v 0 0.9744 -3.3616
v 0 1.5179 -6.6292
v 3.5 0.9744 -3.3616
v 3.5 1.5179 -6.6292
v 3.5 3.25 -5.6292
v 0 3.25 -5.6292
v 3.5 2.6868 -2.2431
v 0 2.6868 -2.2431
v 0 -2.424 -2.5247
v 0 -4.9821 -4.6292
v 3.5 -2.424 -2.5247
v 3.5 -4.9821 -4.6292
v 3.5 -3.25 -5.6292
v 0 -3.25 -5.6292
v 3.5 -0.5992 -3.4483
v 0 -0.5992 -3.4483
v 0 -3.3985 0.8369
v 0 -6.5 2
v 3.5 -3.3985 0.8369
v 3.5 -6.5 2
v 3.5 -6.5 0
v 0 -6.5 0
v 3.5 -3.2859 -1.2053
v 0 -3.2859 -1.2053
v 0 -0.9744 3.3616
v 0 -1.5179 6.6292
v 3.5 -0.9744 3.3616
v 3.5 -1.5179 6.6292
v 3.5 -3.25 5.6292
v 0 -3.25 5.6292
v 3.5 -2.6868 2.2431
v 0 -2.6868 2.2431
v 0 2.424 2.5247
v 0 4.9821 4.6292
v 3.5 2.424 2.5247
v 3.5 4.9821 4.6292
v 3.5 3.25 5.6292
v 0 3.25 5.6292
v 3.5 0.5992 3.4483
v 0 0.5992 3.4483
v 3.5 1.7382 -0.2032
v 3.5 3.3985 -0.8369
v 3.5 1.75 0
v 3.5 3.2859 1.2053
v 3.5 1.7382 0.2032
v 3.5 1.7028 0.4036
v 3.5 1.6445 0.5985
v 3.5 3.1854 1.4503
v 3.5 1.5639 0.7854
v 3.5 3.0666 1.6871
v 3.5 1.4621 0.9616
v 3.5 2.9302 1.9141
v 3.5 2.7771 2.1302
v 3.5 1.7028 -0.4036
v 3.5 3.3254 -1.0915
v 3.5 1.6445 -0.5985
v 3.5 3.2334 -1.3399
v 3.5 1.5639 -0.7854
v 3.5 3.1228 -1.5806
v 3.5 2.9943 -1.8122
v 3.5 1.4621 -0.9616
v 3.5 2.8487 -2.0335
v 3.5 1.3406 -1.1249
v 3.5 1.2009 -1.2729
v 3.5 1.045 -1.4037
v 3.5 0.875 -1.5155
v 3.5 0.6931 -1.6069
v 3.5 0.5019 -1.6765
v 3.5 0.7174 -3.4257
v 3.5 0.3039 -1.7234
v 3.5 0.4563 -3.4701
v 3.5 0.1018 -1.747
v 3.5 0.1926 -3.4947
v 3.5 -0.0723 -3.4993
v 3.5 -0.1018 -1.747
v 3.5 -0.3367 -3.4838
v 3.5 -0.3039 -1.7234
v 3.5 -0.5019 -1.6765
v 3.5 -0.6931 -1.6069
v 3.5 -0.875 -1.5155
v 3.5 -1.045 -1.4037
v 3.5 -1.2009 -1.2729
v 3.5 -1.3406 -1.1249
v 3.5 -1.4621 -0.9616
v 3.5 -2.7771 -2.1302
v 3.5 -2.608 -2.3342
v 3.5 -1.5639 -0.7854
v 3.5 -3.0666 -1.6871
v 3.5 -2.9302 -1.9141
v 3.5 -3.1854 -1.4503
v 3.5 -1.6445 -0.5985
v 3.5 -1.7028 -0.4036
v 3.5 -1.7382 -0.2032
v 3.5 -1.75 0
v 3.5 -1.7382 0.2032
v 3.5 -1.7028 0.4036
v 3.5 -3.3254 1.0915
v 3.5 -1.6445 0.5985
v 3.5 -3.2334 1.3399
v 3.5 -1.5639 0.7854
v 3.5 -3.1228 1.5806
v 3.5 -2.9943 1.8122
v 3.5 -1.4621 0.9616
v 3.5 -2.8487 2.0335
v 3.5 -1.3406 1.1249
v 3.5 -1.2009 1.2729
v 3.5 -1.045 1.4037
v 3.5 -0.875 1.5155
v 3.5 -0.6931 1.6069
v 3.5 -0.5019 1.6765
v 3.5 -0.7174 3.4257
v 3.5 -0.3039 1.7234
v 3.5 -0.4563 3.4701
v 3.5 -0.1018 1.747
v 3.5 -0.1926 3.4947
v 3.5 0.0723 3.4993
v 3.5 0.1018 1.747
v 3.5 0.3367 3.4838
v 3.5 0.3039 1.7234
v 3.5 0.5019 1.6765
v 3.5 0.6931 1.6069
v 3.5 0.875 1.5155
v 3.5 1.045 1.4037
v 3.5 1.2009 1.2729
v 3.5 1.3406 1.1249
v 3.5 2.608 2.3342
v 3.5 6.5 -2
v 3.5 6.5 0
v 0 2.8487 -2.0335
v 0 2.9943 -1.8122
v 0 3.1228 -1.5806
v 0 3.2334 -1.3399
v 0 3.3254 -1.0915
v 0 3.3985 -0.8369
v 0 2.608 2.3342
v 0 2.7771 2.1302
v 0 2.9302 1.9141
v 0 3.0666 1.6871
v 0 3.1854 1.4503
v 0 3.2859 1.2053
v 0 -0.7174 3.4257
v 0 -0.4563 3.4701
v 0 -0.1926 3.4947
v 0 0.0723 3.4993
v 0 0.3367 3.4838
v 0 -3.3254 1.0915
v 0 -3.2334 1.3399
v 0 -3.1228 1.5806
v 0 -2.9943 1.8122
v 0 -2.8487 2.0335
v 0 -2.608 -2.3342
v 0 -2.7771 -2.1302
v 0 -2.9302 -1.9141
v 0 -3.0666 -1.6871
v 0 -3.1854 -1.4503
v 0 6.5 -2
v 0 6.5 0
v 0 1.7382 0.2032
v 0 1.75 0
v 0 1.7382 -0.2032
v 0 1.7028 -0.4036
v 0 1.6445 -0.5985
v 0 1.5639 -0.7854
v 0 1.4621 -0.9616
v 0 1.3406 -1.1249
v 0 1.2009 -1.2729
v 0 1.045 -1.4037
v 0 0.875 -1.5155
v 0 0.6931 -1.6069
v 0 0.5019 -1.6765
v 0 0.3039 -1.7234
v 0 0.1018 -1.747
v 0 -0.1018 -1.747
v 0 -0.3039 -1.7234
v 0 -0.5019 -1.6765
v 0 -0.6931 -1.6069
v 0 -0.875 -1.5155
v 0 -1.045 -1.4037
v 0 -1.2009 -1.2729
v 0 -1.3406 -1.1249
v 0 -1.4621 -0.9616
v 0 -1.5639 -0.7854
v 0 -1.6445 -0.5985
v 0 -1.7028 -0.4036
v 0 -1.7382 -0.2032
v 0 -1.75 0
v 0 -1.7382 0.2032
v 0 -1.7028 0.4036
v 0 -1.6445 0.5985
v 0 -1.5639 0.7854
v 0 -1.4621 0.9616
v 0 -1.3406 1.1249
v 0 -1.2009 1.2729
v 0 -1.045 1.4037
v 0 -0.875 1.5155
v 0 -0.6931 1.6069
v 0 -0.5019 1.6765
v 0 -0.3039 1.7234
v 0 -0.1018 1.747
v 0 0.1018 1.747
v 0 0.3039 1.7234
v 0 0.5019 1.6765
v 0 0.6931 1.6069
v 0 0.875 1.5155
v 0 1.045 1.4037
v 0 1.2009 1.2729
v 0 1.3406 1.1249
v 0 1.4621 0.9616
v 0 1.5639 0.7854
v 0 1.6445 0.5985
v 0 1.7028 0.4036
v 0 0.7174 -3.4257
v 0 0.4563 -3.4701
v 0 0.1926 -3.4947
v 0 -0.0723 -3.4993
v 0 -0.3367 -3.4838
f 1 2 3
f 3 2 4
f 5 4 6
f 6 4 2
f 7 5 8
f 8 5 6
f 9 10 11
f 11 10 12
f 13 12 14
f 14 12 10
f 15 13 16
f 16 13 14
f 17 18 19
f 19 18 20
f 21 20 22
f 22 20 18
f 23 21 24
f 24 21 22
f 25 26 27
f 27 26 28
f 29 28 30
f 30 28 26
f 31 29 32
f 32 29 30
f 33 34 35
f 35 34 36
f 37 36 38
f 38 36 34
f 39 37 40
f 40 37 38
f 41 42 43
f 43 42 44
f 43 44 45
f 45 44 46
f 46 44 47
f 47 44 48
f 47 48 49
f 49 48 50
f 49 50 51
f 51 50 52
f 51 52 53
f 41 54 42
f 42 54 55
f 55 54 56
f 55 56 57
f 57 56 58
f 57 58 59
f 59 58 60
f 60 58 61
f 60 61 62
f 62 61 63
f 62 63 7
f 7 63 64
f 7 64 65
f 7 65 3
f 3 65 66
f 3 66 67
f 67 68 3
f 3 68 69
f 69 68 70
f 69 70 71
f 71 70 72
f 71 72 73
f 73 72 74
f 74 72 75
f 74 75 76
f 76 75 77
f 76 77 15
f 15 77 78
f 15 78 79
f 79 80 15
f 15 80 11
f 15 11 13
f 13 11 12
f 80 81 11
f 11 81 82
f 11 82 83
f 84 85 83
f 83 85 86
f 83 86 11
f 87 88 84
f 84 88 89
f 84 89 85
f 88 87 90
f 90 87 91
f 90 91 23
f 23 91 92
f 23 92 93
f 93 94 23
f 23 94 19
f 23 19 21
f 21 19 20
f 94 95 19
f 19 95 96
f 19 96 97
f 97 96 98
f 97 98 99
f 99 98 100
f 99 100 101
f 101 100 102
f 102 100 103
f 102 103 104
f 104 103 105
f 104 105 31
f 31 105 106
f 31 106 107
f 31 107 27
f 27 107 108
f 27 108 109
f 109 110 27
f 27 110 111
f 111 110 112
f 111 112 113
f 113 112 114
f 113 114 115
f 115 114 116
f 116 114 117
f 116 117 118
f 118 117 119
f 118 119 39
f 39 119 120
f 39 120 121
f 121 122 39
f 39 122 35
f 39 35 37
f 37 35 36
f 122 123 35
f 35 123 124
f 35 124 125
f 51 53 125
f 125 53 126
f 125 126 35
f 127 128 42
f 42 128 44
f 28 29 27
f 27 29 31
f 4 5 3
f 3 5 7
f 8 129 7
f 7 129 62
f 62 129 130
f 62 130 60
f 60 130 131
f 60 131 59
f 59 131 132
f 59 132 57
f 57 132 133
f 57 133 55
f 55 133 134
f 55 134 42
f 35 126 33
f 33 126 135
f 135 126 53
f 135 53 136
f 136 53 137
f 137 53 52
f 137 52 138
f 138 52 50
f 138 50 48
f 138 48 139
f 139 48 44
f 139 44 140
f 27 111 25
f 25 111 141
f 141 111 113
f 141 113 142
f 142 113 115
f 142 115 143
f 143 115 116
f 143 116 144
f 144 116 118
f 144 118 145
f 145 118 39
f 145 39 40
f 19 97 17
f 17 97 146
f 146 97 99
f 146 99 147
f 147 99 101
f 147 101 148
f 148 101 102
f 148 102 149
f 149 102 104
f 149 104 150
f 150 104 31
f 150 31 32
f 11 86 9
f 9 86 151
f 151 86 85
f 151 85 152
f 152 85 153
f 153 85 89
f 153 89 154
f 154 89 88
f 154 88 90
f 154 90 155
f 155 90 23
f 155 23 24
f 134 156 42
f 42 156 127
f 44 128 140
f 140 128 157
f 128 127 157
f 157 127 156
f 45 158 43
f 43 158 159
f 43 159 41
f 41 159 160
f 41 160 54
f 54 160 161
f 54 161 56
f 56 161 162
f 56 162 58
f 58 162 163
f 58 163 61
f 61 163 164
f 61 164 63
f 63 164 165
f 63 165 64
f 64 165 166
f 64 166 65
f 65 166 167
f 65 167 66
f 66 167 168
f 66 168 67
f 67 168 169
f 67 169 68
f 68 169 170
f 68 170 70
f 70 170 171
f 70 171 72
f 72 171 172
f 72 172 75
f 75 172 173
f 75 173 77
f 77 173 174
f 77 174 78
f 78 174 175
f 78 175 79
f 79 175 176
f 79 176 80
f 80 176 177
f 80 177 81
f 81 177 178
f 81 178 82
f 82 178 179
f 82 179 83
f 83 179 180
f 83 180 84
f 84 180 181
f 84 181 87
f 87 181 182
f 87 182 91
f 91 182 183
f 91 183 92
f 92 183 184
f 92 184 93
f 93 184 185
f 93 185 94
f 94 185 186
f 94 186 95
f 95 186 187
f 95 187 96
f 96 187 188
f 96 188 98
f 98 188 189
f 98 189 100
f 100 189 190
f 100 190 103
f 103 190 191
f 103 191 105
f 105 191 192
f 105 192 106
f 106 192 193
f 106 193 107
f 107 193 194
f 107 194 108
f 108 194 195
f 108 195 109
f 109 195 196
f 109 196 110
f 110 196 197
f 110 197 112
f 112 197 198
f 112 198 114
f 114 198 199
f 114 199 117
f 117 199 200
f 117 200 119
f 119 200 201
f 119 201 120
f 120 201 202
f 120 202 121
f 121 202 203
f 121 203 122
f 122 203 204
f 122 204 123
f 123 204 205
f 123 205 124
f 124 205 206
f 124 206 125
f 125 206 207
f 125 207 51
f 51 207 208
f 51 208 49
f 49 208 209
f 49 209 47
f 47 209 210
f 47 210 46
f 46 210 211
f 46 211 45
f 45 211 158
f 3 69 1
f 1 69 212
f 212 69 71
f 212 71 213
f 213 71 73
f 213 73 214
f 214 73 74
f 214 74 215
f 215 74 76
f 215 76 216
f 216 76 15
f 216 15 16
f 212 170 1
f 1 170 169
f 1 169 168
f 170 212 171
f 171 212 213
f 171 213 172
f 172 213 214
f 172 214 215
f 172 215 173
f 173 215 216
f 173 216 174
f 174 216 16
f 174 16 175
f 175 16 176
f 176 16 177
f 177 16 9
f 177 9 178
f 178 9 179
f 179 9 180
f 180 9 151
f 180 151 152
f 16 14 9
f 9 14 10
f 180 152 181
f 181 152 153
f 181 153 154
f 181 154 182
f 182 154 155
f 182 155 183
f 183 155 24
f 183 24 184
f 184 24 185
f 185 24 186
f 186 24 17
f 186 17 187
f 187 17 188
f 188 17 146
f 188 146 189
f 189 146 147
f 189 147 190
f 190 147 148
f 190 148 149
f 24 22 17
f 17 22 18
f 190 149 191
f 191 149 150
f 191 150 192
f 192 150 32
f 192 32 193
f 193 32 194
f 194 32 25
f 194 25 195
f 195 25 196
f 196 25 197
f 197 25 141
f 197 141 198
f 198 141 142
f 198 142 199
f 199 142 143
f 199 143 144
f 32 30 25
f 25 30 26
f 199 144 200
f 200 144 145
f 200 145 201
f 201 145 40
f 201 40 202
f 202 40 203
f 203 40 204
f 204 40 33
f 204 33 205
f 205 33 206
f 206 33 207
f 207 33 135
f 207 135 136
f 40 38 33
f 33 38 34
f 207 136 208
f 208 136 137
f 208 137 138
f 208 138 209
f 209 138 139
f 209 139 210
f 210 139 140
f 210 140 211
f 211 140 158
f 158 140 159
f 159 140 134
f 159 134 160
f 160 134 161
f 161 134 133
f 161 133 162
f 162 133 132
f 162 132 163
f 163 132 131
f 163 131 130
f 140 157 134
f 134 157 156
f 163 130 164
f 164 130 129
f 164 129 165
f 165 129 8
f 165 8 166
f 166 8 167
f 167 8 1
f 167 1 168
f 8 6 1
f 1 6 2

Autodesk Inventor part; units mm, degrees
ref_plane "YZ Plane" through (0, 0, 0) normal (1, 0, 0) x (0, 1, 0)
ref_plane "XZ Plane" through (0, 0, 0) normal (0, 1, 0) x (-1, 0, 0)
ref_plane "XY Plane" through (0, 0, 0) normal (0, 0, 1) x (1, 0, 0)
sketch "Sketch1" plane through (0, 0, 0) normal (1, 0, 0) x (0, 1, 0)
  circle A0 centre (0, 0) radius 1.75
  circle A1 centre (0, 0) radius 3.5
  dimension "d0" = 3.5
  dimension "d1" = 7
extrude "Extrusion1" add sketch "Sketch1" along normal blind 3.5
sketch "Sketch2" plane through (3.5, 0, 0) normal (1, 0, 0) x (0, 0, -1)
  circle A0 centre (0, 0) radius 3.5 construction
  line L0 (0, 3.5) -> (0, 2.5) construction
  line L1 (0, 2.5) -> (1.5, 2.5) construction
  line L2 (1.5, 2.5) -> (-1.5, 2.5) construction
  line L3 (0, 3.5) -> (0, 6.5) construction
  line L4 (0, 6.5) -> (-1.5, 2.5)
  line L5 (0, 6.5) -> (2, 6.5)
  line L6 (2, 6.5) -> (0.5, 2.5)
  line L7 (-1.5, 2.5) -> (0.5, 2.5)
  dimension "d4" = 1
  dimension "d5" = 1.5
  dimension "d6" = 3
  dimension "d7" = 3
  dimension "d8" = 2
extrude "Extrusion2" add sketch "Sketch2" against normal blind 3.5
pattern_circular "Circular Pattern1" count 6 over 360 about axis through (0, 0, 0) along (1, 0, 0) of "Extrusion2"
properties part number "mtv_gear6v2_1-16"
